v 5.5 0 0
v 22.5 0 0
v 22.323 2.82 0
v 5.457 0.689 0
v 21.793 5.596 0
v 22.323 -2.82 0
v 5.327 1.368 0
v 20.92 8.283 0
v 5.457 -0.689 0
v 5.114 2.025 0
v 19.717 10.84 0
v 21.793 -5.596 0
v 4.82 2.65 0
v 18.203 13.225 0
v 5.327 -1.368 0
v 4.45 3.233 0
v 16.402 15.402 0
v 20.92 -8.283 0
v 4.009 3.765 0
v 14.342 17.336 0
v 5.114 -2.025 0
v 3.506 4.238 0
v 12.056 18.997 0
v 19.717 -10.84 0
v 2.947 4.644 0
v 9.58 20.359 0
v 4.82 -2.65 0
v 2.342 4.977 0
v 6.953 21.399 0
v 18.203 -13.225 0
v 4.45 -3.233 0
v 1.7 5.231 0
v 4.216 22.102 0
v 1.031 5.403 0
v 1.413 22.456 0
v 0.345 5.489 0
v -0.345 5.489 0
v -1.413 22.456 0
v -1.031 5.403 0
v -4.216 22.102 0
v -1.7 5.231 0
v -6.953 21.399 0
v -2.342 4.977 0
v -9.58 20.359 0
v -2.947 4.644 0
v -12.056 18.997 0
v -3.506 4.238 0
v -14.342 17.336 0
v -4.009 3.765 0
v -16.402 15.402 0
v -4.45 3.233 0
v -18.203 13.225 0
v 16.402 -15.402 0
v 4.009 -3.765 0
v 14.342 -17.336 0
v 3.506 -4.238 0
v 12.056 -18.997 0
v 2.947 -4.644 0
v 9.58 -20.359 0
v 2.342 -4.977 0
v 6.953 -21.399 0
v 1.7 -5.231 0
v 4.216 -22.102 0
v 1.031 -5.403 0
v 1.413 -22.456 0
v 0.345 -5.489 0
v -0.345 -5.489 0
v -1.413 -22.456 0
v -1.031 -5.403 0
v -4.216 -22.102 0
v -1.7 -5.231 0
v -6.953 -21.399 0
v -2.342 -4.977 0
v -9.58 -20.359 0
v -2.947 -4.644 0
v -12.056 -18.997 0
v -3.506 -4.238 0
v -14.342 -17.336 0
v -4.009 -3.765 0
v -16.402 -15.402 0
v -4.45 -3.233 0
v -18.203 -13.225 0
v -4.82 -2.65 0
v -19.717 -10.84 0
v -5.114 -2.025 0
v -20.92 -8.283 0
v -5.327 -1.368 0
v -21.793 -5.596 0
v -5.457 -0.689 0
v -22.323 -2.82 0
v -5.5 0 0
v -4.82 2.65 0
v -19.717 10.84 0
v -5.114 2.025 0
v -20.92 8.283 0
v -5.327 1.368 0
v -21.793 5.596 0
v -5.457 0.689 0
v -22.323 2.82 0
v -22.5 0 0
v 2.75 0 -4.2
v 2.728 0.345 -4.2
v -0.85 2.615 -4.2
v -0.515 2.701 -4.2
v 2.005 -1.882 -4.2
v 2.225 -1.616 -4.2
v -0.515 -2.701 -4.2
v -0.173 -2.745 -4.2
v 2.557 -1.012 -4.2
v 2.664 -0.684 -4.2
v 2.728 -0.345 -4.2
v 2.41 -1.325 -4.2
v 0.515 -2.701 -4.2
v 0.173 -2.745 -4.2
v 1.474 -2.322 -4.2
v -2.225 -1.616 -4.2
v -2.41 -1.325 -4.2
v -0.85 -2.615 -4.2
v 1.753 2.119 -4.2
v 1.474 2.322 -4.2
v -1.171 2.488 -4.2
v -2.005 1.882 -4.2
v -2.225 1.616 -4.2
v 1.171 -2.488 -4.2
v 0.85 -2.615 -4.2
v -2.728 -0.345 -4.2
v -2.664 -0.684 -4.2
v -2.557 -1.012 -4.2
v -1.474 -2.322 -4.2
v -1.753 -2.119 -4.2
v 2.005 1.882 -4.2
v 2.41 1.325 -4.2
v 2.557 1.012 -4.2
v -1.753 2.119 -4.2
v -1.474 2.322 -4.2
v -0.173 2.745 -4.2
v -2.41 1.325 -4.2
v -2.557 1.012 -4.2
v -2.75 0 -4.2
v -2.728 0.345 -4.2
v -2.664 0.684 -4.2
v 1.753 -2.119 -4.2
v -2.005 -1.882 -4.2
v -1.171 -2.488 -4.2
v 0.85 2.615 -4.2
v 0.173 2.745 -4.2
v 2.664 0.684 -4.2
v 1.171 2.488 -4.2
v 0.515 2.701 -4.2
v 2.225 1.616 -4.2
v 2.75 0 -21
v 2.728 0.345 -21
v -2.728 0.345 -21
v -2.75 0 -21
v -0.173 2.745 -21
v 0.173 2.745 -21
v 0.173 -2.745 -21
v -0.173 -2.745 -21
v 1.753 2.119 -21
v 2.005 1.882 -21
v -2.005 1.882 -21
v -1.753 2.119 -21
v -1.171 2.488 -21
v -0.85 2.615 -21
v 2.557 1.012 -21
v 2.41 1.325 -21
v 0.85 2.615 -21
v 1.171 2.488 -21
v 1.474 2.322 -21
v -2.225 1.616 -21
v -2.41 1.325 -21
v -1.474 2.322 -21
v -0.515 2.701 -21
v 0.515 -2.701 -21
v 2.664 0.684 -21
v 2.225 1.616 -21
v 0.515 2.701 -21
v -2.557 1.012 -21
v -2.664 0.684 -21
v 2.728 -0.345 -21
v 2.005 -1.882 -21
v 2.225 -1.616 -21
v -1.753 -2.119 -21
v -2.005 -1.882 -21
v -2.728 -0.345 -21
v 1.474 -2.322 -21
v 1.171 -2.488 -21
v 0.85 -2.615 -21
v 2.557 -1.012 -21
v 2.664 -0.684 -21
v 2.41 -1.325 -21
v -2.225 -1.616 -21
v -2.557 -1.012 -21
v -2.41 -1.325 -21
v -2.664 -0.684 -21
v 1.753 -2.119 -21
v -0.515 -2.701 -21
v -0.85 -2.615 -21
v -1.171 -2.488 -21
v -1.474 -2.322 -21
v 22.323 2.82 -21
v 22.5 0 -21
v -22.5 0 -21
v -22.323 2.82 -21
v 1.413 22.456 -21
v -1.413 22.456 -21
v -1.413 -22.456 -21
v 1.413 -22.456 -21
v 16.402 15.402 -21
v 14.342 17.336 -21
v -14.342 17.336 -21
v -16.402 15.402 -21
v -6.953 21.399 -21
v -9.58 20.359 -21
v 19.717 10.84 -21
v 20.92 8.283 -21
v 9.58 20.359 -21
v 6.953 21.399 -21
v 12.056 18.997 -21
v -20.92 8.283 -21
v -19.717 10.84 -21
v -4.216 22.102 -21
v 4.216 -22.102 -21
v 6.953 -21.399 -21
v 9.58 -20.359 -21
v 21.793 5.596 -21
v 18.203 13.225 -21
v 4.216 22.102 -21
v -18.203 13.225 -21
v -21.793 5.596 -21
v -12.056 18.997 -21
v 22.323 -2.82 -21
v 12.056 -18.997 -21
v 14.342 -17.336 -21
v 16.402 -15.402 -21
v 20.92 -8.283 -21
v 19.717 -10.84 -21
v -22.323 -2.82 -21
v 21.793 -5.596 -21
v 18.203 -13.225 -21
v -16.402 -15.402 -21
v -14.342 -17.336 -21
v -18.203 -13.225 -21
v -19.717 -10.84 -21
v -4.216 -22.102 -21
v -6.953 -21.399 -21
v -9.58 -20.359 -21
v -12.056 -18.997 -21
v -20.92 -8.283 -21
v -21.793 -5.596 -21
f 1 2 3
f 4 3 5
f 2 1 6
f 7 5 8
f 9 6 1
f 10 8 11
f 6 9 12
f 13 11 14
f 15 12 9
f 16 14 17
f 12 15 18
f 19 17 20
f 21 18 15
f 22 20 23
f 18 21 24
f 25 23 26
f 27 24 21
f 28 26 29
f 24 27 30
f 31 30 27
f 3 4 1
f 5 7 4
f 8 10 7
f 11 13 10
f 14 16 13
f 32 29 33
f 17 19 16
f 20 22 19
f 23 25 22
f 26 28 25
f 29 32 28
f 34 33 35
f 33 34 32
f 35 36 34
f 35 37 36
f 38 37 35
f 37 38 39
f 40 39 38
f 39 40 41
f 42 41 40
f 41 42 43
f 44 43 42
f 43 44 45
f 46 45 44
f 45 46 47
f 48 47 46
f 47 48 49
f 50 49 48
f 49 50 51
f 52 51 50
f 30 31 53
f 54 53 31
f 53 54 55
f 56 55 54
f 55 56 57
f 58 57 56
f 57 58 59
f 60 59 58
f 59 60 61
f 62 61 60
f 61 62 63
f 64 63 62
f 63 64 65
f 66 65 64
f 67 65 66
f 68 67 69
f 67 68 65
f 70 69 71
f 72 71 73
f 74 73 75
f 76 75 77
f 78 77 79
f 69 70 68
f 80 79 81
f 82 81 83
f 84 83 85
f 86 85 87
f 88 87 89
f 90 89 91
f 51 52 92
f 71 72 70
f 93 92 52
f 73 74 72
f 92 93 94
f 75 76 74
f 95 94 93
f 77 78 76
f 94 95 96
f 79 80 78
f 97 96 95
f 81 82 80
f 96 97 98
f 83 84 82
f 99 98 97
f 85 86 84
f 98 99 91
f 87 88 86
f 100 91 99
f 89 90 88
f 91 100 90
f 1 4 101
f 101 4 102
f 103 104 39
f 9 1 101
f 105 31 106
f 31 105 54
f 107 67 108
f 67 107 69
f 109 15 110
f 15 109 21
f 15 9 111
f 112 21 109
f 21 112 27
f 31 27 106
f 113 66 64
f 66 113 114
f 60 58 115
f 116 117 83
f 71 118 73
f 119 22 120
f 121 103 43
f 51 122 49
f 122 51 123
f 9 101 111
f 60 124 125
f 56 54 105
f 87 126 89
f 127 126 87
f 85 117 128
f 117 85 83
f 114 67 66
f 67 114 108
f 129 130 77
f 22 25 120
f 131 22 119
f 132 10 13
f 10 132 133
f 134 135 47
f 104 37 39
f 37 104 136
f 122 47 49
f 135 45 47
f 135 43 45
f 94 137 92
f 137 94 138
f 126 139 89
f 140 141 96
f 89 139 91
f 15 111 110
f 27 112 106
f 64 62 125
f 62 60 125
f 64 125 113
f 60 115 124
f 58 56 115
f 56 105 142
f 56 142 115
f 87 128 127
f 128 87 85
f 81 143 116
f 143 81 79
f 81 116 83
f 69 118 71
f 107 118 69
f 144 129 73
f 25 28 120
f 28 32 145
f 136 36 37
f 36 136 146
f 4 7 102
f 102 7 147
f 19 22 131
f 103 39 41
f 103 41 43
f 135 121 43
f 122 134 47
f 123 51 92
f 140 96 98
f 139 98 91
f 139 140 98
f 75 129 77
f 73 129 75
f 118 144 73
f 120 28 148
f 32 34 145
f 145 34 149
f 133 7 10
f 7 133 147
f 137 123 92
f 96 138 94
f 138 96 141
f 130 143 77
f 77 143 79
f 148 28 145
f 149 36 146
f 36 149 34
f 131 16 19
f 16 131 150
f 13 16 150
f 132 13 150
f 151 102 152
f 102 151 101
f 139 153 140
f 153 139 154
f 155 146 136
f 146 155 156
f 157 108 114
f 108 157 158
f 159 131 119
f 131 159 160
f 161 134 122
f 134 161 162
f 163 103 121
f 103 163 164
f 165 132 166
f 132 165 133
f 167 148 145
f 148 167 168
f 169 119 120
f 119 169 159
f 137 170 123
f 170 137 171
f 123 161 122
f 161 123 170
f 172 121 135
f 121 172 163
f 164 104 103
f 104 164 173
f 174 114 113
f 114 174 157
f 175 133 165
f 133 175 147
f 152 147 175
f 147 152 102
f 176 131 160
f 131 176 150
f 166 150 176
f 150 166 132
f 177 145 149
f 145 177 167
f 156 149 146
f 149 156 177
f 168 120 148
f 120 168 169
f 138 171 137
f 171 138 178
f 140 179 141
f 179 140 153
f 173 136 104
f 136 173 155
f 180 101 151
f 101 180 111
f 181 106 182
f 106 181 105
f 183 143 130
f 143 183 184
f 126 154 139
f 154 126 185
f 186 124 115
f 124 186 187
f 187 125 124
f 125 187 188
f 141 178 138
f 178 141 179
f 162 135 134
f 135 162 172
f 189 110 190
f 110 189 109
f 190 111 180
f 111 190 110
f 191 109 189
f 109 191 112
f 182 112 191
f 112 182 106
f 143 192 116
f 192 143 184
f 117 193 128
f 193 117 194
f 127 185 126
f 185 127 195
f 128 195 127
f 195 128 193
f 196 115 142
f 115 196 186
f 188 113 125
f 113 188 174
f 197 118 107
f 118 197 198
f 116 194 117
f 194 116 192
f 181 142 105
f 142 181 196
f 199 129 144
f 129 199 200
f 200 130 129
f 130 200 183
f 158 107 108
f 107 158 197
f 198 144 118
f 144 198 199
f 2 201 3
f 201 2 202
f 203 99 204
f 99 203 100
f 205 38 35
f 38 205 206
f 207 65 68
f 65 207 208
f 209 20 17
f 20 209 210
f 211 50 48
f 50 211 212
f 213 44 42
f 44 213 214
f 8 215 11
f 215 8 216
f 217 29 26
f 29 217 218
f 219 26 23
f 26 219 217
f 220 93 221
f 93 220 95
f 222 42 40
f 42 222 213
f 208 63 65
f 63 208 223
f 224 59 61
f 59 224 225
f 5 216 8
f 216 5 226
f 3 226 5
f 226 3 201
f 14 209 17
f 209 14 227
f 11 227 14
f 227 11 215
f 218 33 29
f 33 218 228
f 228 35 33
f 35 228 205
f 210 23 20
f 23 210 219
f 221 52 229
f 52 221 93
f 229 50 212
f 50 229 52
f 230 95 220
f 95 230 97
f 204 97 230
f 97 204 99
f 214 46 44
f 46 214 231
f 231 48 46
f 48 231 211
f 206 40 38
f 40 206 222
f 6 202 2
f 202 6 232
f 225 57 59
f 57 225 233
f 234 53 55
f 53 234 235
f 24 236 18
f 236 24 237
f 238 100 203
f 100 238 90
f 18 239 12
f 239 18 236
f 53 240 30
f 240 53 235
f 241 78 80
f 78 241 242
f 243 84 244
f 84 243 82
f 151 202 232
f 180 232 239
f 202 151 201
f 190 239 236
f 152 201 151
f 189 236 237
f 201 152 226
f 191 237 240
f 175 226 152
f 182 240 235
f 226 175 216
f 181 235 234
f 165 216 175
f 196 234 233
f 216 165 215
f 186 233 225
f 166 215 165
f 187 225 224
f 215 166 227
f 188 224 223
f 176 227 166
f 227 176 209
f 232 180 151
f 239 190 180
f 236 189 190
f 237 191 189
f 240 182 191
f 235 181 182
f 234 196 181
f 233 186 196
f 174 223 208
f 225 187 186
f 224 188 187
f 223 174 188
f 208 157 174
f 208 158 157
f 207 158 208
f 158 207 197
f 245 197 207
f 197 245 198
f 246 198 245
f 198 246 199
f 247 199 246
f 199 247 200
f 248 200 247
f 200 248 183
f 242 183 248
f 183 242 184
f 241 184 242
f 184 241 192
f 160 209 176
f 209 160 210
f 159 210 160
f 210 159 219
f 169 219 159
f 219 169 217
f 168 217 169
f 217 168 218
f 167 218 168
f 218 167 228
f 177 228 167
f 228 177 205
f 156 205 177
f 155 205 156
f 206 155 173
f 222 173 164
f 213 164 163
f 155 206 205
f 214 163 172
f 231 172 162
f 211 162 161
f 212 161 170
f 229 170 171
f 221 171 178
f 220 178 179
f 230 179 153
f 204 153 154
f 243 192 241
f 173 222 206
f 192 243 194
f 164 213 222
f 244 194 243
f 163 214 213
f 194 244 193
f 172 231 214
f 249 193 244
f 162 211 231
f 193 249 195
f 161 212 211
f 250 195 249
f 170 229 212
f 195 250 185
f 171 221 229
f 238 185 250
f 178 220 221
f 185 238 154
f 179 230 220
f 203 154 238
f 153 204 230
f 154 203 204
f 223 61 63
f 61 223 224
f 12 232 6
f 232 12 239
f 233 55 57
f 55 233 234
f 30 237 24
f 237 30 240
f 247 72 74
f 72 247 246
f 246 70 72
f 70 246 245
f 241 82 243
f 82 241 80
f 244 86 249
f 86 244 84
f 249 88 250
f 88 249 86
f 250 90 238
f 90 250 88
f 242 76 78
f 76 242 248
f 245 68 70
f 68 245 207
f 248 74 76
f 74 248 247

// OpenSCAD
$fn = 50;

difference() {
	union() {
		translate(v = [0, 0, -21.0]) {
			cylinder(h = 21, r = 22.5);
		}
	}
	union() {
		translate(v = [0, 0, 0]) {
			rotate(a = [0, 0, 0]) {
				difference() {
					union() {
						translate(v = [0, 0, -24.0]) {
							cylinder(h = 24, r = 2.25);
						}
						translate(v = [0, 0, -4.2]) {
							cylinder(h = 4.2, r1 = 2.75, r2 = 5.5);
						}
						translate(v = [0, 0, -24.0]) {
							cylinder(h = 24, r = 2.75);
						}
						translate(v = [0, 0, -24.0]) {
							cylinder(h = 24, r = 2.25);
						}
					}
					union();
				}
			}
		}
	}
}
